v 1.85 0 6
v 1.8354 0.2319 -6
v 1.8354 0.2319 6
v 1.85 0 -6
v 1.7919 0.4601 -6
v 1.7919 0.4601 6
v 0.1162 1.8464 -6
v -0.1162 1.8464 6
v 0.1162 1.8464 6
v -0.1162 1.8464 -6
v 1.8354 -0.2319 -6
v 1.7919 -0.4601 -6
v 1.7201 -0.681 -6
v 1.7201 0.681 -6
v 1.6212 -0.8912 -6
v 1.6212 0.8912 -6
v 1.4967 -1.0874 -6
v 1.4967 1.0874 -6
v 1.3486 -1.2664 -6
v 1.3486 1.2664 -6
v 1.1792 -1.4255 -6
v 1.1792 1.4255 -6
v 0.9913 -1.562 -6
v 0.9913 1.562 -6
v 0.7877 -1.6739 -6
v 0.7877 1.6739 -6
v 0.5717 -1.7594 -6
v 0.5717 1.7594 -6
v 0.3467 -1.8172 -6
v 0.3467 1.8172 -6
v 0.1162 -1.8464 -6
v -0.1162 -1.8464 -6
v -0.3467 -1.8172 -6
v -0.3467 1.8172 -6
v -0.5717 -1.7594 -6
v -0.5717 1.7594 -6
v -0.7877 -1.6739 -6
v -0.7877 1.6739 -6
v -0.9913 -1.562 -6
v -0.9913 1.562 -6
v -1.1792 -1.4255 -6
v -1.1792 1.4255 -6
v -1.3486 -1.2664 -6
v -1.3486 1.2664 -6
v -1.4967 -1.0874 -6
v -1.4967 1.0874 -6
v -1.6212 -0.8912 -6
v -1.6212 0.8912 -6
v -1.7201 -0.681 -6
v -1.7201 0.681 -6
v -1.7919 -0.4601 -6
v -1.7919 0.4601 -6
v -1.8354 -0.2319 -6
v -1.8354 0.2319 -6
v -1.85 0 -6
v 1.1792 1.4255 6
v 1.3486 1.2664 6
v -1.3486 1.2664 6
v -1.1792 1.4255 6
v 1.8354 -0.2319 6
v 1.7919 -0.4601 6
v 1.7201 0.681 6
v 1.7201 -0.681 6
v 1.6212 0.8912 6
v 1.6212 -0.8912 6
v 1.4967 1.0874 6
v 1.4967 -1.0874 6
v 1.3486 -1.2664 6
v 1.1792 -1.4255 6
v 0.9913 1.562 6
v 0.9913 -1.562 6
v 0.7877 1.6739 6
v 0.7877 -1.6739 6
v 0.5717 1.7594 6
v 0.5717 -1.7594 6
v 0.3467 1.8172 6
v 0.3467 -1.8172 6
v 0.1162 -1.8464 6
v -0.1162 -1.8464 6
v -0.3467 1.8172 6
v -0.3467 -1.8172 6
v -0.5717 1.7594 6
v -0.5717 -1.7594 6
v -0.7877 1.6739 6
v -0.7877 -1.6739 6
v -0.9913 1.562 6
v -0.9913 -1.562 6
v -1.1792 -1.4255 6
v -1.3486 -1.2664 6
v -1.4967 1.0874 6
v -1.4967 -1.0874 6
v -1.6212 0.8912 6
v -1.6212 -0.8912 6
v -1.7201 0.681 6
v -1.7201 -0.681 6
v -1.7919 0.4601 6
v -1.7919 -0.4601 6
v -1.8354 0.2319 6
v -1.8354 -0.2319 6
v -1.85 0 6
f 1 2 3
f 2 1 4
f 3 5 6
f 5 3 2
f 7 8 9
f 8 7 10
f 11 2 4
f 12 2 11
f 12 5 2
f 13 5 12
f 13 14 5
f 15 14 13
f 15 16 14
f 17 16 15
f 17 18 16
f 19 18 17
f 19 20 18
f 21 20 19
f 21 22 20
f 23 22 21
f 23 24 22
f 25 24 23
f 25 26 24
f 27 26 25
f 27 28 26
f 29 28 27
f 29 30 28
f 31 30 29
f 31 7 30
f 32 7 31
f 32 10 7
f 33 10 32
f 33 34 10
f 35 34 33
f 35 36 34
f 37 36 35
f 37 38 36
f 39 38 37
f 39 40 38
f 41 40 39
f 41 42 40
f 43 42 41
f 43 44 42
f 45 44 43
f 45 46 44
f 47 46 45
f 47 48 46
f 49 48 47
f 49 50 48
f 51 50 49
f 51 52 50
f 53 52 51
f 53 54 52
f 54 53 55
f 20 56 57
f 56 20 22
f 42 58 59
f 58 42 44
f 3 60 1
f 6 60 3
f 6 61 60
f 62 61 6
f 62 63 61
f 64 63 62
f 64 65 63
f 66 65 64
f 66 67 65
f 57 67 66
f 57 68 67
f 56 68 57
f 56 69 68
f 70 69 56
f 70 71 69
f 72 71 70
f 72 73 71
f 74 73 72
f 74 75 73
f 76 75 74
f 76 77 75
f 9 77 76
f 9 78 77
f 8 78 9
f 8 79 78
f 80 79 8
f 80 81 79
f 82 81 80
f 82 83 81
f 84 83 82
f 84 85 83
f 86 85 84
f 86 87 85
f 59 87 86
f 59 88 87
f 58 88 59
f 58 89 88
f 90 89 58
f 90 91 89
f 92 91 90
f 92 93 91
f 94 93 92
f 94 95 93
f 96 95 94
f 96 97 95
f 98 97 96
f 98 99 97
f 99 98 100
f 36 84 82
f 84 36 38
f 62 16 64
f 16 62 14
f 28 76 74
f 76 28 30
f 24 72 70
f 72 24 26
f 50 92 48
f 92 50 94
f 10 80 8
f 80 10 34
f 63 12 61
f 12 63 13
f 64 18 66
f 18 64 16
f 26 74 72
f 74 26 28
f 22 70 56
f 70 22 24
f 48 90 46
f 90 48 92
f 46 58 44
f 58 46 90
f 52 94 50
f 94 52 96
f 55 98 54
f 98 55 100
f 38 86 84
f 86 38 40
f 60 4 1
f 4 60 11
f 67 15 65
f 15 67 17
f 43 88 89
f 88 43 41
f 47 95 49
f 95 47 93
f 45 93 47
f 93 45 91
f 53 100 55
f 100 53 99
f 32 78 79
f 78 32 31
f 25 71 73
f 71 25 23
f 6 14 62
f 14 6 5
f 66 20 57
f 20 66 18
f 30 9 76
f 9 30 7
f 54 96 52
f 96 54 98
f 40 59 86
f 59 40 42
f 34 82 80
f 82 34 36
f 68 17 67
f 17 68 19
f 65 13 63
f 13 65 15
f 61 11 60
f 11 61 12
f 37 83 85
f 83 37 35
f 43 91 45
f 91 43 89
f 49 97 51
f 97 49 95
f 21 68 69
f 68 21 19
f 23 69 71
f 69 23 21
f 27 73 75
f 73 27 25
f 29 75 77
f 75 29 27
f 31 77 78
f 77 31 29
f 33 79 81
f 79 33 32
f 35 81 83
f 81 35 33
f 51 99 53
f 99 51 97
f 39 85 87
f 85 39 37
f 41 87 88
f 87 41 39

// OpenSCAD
$fn = 50;


difference() {
	union() {
		translate(v = [0, 0, -6.0000000000]) {
			cylinder(h = 12, r = 1.8500000000);
		}
	}
	union() {
		translate(v = [0, 0, -100.0000000000]) {
			cylinder(h = 200, r = 0);
		}
	}
}
